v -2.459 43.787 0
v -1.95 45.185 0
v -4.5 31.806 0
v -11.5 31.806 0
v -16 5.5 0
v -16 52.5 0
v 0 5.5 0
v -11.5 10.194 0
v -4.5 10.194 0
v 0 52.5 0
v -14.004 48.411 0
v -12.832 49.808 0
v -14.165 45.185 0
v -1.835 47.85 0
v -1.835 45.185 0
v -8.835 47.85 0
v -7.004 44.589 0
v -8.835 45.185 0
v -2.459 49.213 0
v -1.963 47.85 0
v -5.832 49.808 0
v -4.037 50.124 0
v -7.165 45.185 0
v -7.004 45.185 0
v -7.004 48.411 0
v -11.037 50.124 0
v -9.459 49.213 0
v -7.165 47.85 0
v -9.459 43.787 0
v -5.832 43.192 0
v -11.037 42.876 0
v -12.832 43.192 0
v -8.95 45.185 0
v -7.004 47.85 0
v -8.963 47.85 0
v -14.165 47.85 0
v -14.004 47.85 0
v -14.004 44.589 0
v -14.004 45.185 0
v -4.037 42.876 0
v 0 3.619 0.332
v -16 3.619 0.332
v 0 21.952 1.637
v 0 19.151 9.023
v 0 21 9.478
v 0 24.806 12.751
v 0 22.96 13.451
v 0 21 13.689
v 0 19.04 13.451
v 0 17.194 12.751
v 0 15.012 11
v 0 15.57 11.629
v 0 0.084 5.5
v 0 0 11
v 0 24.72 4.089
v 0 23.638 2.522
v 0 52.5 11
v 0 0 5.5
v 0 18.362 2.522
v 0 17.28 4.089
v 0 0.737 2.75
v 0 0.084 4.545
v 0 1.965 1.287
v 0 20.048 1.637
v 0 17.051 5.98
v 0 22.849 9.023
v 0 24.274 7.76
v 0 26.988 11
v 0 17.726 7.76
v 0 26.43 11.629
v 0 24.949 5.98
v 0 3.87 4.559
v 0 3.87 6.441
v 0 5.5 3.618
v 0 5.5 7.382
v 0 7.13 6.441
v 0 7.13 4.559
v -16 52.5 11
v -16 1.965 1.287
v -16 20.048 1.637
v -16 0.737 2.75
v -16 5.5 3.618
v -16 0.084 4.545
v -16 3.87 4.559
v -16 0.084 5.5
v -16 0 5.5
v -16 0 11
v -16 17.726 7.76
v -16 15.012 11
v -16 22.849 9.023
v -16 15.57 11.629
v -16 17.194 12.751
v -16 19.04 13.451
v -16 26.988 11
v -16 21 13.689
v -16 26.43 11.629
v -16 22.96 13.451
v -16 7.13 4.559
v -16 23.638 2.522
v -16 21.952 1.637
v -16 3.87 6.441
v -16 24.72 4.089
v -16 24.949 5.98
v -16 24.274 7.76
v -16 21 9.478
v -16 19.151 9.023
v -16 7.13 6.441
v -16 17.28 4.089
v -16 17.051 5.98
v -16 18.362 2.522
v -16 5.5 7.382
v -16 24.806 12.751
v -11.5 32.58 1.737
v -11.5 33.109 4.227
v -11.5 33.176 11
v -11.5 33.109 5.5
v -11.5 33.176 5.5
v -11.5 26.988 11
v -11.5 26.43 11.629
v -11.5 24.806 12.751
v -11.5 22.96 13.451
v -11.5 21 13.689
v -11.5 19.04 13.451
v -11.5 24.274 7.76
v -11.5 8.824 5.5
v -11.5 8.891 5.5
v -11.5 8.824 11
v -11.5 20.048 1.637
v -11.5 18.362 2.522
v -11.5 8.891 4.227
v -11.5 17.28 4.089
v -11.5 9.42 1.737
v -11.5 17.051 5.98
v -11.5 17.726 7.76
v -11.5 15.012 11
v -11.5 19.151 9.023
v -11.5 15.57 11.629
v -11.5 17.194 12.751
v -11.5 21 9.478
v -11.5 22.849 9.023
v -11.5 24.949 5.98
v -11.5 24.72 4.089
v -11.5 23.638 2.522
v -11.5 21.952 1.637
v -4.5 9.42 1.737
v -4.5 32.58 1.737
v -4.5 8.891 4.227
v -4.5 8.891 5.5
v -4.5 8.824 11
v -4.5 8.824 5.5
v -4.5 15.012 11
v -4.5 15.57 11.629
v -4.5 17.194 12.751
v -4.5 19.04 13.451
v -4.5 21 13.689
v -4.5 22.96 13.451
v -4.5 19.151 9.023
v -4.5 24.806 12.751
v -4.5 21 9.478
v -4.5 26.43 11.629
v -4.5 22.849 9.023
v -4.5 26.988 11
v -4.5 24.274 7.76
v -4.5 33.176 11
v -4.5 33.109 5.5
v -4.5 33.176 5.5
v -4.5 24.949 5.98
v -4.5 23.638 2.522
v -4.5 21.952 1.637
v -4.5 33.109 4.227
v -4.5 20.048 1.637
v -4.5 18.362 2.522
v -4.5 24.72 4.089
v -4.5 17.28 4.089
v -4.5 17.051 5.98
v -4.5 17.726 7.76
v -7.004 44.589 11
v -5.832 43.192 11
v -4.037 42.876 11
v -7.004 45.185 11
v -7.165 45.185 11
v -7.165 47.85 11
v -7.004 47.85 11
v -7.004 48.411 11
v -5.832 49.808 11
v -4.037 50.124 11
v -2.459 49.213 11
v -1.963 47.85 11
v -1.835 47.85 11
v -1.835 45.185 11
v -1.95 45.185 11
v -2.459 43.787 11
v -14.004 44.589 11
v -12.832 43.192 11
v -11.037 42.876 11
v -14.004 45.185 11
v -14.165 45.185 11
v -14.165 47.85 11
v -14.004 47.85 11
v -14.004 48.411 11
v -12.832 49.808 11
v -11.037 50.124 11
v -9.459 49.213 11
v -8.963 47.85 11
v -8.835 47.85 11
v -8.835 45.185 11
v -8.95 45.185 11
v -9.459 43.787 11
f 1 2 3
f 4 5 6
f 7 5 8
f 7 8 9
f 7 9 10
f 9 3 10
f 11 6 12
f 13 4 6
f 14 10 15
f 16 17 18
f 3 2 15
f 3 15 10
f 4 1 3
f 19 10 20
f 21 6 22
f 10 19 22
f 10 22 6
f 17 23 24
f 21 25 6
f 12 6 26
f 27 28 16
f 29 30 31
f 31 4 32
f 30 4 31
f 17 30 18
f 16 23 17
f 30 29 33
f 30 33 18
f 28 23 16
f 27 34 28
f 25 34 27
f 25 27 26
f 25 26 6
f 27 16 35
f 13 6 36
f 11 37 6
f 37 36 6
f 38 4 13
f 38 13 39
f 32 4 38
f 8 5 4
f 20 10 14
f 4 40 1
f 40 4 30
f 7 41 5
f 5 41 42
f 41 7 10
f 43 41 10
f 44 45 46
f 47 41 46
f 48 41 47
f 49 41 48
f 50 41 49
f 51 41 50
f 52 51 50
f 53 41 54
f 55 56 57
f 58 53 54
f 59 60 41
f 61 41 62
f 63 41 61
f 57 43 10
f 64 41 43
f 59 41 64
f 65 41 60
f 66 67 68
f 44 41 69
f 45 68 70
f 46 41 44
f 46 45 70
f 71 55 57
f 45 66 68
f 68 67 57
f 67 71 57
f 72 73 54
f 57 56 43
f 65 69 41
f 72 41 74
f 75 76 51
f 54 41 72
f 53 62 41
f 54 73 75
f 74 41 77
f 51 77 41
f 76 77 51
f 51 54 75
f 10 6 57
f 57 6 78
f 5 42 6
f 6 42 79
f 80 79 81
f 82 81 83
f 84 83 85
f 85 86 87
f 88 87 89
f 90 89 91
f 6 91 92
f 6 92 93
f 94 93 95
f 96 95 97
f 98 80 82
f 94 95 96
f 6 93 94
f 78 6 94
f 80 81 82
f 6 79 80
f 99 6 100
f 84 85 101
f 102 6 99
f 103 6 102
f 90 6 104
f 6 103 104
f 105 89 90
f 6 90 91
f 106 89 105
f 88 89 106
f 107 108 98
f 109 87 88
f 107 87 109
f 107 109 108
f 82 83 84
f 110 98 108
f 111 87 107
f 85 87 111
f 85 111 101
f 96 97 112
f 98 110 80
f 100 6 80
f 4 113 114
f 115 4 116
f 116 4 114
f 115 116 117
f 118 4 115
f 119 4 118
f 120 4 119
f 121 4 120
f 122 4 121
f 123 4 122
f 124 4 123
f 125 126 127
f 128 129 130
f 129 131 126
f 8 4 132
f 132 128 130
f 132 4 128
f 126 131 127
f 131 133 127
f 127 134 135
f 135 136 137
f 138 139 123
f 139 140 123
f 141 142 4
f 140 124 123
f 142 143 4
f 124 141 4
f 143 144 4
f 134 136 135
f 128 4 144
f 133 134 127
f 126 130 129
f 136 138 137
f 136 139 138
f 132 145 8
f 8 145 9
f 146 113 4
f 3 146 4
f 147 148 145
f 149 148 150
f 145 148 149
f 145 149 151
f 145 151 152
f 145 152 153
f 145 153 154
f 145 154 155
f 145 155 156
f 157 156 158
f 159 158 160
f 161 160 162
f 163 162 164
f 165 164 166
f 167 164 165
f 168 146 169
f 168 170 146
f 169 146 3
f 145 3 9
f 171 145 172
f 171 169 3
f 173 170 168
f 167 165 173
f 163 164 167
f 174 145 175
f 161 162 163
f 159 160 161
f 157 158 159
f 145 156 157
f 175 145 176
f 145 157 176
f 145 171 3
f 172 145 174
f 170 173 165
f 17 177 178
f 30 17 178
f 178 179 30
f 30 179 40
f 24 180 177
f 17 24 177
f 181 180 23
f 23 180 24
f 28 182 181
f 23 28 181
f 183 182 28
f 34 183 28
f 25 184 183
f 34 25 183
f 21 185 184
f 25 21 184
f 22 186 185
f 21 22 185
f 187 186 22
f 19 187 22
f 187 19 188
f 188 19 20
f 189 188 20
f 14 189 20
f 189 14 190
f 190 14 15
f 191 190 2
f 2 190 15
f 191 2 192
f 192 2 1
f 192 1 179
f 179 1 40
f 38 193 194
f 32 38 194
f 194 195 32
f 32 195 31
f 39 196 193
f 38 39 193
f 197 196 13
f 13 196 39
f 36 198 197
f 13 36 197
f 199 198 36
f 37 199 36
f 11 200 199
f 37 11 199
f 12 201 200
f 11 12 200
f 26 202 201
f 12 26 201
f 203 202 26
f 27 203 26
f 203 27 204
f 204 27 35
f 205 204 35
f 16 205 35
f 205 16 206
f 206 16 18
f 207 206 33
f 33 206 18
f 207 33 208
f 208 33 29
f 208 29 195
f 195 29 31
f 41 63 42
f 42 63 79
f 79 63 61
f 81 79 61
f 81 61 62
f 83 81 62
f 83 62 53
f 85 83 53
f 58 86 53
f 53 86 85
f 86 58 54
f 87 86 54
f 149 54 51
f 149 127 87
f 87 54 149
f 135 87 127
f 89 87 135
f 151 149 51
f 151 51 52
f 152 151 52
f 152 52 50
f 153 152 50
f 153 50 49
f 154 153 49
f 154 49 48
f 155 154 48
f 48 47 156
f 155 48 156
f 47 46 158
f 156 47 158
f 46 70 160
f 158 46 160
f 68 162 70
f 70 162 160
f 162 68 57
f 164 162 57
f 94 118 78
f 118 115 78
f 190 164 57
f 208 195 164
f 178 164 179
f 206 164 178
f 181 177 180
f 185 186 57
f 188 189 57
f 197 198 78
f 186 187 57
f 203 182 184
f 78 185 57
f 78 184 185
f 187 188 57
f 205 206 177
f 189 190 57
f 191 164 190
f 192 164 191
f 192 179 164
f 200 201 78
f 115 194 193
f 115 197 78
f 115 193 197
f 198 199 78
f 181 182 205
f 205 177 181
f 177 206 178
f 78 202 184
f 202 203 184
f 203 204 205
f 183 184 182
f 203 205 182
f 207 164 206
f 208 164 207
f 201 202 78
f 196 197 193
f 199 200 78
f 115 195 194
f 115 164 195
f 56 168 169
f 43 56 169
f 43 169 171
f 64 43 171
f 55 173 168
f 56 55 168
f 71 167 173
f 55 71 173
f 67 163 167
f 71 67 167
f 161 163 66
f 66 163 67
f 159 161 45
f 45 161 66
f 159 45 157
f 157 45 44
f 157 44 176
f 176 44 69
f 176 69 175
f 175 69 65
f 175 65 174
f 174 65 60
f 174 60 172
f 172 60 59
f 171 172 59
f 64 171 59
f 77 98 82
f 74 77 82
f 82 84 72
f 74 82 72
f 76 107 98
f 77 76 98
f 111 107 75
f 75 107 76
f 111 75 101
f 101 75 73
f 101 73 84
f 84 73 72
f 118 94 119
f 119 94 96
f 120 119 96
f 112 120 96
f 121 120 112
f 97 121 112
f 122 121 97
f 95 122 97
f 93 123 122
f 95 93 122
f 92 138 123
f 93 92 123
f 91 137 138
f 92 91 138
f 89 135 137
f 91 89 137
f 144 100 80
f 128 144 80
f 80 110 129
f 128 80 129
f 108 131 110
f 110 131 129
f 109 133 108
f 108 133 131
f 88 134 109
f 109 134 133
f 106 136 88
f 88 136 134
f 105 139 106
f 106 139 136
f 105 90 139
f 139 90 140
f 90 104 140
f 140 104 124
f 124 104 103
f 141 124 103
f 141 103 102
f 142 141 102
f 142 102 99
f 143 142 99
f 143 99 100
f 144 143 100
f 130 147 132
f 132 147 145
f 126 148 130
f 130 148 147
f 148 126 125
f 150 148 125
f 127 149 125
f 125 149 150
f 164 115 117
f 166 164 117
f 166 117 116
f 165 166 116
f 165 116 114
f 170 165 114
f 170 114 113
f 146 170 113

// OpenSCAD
// file: extruder_configuration.scad
//pdiam based on Nophead's : http://hydraraptor.blogspot.com/2011/02/polyholes.html 
debug=0;

assemble= 0;
show_axles=0;

function pdiam(diam, tolerance=0.3)=debug?diam:(diam) / cos (180 / max(round(2 * diam),3))+tolerance;

//function pdiam(diam)=diam;

extruder_gear_D = 9;//12.6;
extruder_gear_length = 11;
filament_D = 1.75;

m3_D=3;
m4_D=4;
m8_D=8;

nema_size = 42;
nema_holes_distance = 31;
nema_axle_length = 24;
nema_axle_cutout_D = 24;

shaft_D = 5;

bearing625_D = 16.25;
bearing625_height=5;

bearing608_D	= 22;
bearing608_D_clr	= 24;
bearing608_width	= 6;
bearing608_clr	= bearing608_width+1;
bearing608_m8	= 17;

bearingLM8UU_height	= 24;
bearingLM8UU_D	= 15;
holder_LM8UU_D = 1;

thickness = 4;
depth = 17;
idler_depth = depth - 1;

echo( "Required M3 len : ");
echo( 2*thickness + depth + 4);

holder_offset_x = bearingLM8UU_D / 2 + thickness / 2;
holder_offset_y = -bearingLM8UU_D/2+ thickness / 2;

pneufit_D = 9.7;
pneufit_depth = 7;
filament_path_width = pneufit_D + 4;
filament_path_height = nema_size/4 + 2;
mo = 0.01;
da6 = 1/cos(180/6)/2;

idler_angle = 0;
idler_rotation_tolerance = 1;

hole_distance = (nema_size - nema_holes_distance) / 2; 
holes = 
[
	[hole_distance, hole_distance, -mo],
	[nema_size - hole_distance, hole_distance, -mo],
	[hole_distance, nema_size - hole_distance, -mo],
	//[nema_size - hole_distance, nema_size - hole_distance, -mo],
];

pillar_width = hole_distance*2;
pillar_offset = hole_distance - pillar_width / 2;
pillars = 
[
	[pillar_offset,pillar_offset,thickness-mo],
	[pillar_offset,nema_size - pillar_offset - pillar_width,thickness-mo],
];

holder_holes_distance = depth / 2 - m4_D - 1;
holder_holes = [-holder_holes_distance,holder_holes_distance];
// main file
include<extruder_configuration.scad>

rotate([0,270,0])
idler();

module idler()
{
	d = nema_size / 2 - hole_distance;
	dd = extruder_gear_D/2 + bearing608_D / 2 - d;
	h = sqrt(pow(dd,2)+pow(d,2)) + hole_distance;

	bearing_holder = 8;

	difference()
	{
		union()
		{
			
			translate([0, hole_distance, 0])
			cube([hole_distance*2, nema_size + 5, idler_depth]);

			translate([hole_distance, 0, 0])
			cube([hole_distance, hole_distance, idler_depth]);

			translate([hole_distance, hole_distance, 0])
			cylinder(r=hole_distance, h=idler_depth);
			
			difference()
			{
				translate([hole_distance, h, 0])
				cylinder(r=pdiam(m8_D + bearing_holder) / 2, h=idler_depth);

				translate([-hole_distance, h - pdiam(m8_D + bearing_holder)/2, -mo])
				cube([pdiam(m8_D + bearing_holder), pdiam(m8_D + bearing_holder),idler_depth+2*mo]);
			}
		}
		
		// idler fixation hole
		translate(holes[0])
		cylinder(r=pdiam(m3_D)/2, h=idler_depth + thickness+mo*2);

		// idler tightening holes
		for (h = holder_holes) 
		{
			translate([-mo,nema_size+hole_distance,idler_depth/2 + h])
			rotate([0,90,0])
			cylinder(r=pdiam(m4_D,1)/2, h=idler_depth + thickness+mo*2);

			translate([-mo,nema_size+hole_distance-pdiam(m4_D)/2,idler_depth/2 + h-pdiam(m4_D,1)/2])
			cube([idler_depth+2*mo, pdiam(m4_D,1)/2, pdiam(m4_D,1)]);

			translate([-mo,nema_size+hole_distance-2,idler_depth/2 + h])
			rotate([0,90,0])
			cylinder(r=pdiam(m4_D,1)/2, h=idler_depth + thickness+mo*2);
		}	

		// bearing fixation

		translate([hole_distance, h, idler_depth/2-bearing608_m8/2])
		cylinder(r=pdiam(m8_D,-0.2) / 2, h=bearing608_m8);

		// bearing clearance
		translate([hole_distance, h - pdiam(bearing608_D_clr)/2, idler_depth/2-bearing608_clr/2])
		cube([pdiam(bearing608_D_clr), pdiam(bearing608_D_clr),bearing608_clr]);
		translate([hole_distance, h,  idler_depth/2-bearing608_clr/2])
		cylinder(r=pdiam(bearing608_D_clr) / 2, h=bearing608_clr);
	}		

	if(show_axles > 0)
	{
		translate([hole_distance, h, idler_depth/2-bearing608_width/2])
		color("Grey")cylinder(r=pdiam(bearing608_D) / 2, h=bearing608_width);		
	}	
}
